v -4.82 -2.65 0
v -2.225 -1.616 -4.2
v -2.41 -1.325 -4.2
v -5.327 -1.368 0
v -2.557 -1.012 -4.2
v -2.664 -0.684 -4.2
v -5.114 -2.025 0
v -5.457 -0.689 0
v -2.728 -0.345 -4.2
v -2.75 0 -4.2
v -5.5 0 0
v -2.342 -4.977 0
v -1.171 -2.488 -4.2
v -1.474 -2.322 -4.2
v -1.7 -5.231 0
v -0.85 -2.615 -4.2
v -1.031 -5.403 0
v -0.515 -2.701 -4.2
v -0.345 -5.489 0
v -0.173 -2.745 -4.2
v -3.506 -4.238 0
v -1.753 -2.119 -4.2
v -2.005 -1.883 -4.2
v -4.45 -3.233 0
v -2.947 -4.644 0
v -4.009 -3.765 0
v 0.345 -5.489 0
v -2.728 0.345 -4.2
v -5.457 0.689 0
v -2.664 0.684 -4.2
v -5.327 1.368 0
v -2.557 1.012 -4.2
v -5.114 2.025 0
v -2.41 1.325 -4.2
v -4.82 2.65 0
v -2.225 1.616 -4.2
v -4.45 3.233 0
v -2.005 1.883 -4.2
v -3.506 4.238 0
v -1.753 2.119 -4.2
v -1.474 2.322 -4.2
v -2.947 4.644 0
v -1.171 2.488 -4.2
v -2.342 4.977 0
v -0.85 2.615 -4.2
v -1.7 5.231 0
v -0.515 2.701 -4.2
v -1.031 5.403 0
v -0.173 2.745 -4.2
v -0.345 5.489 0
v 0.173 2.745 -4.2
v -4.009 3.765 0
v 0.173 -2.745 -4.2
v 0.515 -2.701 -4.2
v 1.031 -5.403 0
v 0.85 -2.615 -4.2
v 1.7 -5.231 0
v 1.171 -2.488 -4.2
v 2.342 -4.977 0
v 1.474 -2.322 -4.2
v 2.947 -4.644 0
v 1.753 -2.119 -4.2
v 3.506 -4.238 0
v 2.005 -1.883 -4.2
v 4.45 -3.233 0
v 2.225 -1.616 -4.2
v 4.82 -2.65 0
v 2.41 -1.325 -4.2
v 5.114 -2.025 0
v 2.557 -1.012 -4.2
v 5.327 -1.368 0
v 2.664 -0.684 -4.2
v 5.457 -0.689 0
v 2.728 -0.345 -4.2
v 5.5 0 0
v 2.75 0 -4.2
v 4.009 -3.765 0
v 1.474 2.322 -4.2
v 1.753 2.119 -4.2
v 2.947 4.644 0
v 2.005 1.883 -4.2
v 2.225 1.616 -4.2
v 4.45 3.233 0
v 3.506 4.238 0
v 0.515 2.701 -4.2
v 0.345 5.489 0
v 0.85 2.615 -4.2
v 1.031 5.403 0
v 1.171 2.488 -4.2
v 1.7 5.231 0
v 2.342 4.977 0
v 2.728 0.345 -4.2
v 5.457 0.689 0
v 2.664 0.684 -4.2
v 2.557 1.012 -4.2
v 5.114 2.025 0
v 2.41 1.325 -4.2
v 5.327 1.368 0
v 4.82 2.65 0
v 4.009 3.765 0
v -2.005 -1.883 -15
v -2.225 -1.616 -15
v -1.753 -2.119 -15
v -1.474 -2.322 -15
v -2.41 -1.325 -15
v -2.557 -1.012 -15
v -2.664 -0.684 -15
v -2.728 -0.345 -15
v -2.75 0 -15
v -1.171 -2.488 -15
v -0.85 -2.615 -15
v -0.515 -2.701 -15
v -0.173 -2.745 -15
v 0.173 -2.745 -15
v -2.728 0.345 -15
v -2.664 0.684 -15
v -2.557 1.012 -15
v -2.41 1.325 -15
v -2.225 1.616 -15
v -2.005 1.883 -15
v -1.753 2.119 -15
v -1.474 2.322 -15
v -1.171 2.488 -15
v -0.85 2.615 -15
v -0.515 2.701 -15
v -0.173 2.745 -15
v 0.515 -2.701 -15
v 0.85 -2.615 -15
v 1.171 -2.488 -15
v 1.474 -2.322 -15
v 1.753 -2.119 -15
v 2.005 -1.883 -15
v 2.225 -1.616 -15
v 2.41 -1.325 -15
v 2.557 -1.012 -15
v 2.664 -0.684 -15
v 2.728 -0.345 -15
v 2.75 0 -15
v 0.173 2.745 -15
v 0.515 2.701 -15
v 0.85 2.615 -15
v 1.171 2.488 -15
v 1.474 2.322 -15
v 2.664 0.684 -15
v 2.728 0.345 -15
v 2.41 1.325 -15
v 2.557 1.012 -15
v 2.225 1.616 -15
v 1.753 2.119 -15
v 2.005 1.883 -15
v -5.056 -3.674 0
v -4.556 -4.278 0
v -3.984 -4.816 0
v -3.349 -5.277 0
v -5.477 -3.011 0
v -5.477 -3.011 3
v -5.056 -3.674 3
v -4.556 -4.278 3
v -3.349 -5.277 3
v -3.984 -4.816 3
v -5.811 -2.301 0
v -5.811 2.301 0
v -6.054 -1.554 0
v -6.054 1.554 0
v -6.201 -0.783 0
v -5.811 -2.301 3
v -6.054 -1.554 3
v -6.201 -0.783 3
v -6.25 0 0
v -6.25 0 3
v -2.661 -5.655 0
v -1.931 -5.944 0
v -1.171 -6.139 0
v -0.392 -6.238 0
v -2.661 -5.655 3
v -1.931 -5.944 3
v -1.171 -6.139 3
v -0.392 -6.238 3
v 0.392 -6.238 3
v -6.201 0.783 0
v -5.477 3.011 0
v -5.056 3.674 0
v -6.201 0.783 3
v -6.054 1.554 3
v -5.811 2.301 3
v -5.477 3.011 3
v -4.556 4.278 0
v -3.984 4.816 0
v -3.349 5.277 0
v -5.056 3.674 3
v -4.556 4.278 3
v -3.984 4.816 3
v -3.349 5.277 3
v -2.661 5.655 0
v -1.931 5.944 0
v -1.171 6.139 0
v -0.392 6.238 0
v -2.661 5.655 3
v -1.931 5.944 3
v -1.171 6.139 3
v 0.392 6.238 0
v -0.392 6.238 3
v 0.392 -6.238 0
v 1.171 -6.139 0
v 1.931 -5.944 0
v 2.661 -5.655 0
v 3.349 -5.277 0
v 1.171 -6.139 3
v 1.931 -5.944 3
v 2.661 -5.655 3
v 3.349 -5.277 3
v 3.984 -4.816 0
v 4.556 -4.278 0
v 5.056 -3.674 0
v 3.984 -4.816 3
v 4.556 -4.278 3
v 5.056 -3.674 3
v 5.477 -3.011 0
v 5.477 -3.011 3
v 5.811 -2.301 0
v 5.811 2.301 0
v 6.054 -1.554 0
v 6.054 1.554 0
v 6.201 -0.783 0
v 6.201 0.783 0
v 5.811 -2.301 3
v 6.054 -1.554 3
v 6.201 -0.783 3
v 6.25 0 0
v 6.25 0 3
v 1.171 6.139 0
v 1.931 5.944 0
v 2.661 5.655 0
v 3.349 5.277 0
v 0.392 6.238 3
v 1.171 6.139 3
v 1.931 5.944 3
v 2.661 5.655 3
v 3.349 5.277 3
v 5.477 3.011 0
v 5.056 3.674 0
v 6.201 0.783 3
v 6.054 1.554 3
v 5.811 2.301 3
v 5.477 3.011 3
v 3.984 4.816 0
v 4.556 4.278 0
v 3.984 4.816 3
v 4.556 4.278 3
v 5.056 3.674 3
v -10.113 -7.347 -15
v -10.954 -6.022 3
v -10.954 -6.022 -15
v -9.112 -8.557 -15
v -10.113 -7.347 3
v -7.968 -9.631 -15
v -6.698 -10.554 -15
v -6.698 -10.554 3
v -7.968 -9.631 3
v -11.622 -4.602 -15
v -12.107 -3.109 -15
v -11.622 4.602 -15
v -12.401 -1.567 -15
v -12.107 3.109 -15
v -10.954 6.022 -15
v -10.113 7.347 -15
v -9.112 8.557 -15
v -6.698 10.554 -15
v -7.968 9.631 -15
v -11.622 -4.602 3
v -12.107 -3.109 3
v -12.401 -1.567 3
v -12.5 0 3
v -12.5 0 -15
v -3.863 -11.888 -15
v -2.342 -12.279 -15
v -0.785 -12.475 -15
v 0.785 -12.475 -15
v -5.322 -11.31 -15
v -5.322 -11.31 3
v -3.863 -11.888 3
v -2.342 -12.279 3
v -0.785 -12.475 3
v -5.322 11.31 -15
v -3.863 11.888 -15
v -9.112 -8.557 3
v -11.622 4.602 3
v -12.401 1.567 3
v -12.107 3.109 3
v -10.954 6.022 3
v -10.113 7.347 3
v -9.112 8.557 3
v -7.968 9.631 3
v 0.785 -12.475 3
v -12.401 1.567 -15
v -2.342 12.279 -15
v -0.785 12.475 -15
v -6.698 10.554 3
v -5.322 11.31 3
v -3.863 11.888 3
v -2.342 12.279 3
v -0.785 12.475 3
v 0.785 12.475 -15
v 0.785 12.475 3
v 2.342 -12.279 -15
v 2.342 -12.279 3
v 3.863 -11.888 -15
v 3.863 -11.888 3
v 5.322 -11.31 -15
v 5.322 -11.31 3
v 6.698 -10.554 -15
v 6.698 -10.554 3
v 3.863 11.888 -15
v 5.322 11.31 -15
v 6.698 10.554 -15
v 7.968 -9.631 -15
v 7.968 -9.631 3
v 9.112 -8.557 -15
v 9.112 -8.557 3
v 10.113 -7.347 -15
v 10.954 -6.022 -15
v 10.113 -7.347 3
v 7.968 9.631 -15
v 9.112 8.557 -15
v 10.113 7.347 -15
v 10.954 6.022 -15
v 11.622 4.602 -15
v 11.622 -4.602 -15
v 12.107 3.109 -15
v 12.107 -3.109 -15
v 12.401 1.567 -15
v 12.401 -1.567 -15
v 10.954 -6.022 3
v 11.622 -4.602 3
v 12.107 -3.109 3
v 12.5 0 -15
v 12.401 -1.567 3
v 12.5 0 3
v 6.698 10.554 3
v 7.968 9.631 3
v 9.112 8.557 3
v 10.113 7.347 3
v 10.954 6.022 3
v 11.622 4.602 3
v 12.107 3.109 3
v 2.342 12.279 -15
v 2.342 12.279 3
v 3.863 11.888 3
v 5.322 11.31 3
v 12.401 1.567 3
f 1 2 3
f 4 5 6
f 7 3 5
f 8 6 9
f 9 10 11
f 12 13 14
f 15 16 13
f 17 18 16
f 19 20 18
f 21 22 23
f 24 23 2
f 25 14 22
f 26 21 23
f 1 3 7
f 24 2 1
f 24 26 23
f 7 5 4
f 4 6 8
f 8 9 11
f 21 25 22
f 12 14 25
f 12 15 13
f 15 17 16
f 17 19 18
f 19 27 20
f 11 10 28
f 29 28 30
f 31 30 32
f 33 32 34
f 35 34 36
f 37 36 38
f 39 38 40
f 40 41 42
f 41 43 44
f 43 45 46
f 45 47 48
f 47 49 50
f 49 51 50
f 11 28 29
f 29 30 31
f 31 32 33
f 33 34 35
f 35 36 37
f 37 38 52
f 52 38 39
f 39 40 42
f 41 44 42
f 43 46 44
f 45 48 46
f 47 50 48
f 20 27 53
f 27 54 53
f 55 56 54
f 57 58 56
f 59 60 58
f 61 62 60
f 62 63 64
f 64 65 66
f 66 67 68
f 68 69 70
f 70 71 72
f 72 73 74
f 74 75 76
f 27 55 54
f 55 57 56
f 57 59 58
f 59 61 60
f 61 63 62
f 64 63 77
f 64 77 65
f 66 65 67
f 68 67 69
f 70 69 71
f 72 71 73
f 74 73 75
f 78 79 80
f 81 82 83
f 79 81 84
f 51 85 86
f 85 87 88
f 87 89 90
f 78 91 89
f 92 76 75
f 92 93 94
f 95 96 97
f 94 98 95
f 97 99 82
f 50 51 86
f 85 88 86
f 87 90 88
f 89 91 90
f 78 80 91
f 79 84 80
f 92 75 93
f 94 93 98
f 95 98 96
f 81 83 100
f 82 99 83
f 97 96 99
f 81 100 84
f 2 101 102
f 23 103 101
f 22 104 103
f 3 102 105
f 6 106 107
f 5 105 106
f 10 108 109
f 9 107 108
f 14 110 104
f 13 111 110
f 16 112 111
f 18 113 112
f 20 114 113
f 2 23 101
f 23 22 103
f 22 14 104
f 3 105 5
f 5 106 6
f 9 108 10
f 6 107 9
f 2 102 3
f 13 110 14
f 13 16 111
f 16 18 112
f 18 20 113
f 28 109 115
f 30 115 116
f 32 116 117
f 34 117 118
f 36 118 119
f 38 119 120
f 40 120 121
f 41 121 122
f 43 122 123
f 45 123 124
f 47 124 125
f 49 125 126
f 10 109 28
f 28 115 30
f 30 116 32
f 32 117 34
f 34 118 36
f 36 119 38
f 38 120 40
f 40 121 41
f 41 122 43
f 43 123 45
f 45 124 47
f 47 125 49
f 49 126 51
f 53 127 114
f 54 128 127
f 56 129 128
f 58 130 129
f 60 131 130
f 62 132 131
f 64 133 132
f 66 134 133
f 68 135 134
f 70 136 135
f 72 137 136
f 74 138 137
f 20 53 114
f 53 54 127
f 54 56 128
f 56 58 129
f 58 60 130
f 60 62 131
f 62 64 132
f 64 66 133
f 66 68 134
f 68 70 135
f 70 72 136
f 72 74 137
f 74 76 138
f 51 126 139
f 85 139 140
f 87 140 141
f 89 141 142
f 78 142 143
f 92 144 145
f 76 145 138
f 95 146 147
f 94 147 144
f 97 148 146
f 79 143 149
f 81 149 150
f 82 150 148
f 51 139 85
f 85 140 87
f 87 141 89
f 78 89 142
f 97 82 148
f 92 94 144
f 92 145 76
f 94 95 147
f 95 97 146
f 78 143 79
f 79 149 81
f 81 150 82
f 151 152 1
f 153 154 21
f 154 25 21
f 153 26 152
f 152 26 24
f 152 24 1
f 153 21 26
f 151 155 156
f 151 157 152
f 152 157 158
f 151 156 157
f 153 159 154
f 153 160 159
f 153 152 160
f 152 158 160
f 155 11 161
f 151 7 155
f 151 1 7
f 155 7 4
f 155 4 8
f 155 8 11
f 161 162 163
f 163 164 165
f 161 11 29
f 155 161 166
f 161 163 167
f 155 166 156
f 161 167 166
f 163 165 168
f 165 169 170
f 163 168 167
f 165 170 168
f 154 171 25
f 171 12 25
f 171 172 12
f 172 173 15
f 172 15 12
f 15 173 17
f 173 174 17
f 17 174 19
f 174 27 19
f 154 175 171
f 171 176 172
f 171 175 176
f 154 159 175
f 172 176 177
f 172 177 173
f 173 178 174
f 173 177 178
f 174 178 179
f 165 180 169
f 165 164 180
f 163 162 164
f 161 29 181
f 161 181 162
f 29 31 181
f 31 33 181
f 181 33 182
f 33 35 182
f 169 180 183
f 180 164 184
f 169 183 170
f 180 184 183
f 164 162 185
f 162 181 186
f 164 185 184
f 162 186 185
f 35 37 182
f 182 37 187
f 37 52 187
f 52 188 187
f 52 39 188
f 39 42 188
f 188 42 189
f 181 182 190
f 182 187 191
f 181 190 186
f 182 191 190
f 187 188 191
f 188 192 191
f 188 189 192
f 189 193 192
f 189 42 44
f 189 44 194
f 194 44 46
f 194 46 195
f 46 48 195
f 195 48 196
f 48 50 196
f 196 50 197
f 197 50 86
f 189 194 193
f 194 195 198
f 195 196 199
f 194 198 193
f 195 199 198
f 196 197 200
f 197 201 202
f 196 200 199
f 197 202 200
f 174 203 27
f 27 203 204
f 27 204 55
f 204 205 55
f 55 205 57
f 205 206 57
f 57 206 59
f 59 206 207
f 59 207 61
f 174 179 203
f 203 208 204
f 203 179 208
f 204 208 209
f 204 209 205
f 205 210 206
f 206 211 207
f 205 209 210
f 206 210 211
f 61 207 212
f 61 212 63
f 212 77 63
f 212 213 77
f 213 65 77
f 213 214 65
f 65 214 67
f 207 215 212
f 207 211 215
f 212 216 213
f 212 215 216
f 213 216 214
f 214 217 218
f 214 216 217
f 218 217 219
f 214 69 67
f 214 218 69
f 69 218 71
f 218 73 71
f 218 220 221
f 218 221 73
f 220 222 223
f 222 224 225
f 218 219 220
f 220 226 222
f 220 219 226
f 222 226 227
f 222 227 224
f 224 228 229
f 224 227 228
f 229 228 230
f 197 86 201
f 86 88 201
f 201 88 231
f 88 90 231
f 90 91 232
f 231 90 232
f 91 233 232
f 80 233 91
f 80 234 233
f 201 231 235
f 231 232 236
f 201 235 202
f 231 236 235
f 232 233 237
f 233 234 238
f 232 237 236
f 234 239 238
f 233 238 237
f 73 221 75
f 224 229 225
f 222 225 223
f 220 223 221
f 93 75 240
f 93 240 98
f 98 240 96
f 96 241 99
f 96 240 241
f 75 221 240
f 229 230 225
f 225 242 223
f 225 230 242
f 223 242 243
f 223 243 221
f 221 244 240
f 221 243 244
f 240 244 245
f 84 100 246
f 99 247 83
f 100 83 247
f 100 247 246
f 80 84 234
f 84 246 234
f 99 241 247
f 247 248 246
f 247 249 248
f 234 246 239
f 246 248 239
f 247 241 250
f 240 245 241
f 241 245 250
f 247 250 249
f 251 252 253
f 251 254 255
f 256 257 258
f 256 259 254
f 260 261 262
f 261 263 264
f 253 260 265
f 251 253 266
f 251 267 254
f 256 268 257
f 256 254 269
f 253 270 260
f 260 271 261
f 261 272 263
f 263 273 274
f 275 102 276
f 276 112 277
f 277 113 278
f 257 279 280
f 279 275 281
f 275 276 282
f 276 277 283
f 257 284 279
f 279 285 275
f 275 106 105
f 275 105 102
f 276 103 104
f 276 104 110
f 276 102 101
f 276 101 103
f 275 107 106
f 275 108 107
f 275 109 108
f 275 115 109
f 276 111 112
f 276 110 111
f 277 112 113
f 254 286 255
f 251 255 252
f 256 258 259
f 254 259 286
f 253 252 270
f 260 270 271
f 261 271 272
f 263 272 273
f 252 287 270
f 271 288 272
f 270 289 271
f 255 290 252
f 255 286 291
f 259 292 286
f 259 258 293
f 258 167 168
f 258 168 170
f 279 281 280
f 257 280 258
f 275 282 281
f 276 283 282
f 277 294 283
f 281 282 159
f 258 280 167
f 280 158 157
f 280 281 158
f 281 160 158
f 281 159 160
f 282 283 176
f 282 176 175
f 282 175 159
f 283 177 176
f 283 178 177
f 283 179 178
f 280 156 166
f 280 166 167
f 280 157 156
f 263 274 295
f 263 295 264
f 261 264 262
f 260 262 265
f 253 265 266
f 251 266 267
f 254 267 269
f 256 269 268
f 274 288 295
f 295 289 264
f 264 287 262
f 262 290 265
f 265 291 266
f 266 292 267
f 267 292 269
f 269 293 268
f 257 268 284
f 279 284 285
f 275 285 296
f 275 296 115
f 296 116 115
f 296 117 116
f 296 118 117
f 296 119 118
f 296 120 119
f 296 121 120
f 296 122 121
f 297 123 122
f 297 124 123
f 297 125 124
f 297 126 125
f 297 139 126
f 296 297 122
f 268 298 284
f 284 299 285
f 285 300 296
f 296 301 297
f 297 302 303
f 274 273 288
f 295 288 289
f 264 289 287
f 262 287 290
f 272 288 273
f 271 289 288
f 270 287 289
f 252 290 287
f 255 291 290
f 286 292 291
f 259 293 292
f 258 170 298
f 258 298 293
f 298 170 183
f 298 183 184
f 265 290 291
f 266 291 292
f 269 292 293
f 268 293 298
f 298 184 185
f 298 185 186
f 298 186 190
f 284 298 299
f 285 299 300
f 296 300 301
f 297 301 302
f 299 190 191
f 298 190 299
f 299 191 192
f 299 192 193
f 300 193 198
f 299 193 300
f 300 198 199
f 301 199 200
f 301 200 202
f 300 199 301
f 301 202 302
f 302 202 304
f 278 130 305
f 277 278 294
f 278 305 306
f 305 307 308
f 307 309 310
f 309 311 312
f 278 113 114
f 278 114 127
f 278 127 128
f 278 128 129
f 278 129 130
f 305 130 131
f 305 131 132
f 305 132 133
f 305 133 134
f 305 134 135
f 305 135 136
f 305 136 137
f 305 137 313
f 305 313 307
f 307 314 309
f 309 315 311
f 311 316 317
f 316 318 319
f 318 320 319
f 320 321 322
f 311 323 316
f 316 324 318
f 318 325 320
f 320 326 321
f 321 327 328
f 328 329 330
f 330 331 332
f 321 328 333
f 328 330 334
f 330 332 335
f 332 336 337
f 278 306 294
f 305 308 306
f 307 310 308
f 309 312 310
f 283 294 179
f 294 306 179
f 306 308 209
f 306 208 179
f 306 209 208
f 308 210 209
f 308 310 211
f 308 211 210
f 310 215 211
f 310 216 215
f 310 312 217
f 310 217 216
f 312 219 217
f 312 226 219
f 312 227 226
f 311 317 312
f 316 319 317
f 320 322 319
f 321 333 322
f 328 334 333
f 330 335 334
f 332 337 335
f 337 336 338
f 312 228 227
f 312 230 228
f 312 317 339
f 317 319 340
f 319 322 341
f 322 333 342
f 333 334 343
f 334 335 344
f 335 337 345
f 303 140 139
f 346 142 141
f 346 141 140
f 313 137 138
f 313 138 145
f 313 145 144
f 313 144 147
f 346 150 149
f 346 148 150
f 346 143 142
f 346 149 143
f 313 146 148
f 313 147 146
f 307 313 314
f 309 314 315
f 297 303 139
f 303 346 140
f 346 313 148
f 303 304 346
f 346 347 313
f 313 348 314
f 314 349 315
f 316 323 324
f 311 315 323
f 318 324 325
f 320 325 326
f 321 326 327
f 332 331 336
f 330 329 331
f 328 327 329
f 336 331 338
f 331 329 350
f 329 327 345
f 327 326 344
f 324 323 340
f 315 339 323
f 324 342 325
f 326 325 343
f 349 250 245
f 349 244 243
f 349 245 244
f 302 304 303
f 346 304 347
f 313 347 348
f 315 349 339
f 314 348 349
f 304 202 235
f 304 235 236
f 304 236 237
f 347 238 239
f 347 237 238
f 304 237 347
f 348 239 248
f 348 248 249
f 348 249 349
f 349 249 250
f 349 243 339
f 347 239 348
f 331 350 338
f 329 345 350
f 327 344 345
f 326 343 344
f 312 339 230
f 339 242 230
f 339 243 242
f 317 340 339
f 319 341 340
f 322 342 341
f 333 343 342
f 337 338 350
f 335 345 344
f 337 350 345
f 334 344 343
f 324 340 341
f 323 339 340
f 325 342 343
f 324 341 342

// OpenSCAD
$fn = 50;

difference() {
	union() {
		translate(v = [0, 0, -15.0]) {
			cylinder(h = 18, r = 12.5);
		}
	}
	union() {
		translate(v = [0, 0, 0]) {
			rotate(a = [0, 0, 0]) {
				difference() {
					union() {
						translate(v = [0, 0, -18.0]) {
							cylinder(h = 18, r = 2.25);
						}
						translate(v = [0, 0, -4.2]) {
							cylinder(h = 4.2, r1 = 2.75, r2 = 5.5);
						}
						translate(v = [0, 0, -18.0]) {
							cylinder(h = 18, r = 2.75);
						}
						translate(v = [0, 0, -18.0]) {
							cylinder(h = 18, r = 2.25);
						}
					}
					union();
				}
			}
		}
		#cylinder(h = 3, r = 6.25);
	}
}
